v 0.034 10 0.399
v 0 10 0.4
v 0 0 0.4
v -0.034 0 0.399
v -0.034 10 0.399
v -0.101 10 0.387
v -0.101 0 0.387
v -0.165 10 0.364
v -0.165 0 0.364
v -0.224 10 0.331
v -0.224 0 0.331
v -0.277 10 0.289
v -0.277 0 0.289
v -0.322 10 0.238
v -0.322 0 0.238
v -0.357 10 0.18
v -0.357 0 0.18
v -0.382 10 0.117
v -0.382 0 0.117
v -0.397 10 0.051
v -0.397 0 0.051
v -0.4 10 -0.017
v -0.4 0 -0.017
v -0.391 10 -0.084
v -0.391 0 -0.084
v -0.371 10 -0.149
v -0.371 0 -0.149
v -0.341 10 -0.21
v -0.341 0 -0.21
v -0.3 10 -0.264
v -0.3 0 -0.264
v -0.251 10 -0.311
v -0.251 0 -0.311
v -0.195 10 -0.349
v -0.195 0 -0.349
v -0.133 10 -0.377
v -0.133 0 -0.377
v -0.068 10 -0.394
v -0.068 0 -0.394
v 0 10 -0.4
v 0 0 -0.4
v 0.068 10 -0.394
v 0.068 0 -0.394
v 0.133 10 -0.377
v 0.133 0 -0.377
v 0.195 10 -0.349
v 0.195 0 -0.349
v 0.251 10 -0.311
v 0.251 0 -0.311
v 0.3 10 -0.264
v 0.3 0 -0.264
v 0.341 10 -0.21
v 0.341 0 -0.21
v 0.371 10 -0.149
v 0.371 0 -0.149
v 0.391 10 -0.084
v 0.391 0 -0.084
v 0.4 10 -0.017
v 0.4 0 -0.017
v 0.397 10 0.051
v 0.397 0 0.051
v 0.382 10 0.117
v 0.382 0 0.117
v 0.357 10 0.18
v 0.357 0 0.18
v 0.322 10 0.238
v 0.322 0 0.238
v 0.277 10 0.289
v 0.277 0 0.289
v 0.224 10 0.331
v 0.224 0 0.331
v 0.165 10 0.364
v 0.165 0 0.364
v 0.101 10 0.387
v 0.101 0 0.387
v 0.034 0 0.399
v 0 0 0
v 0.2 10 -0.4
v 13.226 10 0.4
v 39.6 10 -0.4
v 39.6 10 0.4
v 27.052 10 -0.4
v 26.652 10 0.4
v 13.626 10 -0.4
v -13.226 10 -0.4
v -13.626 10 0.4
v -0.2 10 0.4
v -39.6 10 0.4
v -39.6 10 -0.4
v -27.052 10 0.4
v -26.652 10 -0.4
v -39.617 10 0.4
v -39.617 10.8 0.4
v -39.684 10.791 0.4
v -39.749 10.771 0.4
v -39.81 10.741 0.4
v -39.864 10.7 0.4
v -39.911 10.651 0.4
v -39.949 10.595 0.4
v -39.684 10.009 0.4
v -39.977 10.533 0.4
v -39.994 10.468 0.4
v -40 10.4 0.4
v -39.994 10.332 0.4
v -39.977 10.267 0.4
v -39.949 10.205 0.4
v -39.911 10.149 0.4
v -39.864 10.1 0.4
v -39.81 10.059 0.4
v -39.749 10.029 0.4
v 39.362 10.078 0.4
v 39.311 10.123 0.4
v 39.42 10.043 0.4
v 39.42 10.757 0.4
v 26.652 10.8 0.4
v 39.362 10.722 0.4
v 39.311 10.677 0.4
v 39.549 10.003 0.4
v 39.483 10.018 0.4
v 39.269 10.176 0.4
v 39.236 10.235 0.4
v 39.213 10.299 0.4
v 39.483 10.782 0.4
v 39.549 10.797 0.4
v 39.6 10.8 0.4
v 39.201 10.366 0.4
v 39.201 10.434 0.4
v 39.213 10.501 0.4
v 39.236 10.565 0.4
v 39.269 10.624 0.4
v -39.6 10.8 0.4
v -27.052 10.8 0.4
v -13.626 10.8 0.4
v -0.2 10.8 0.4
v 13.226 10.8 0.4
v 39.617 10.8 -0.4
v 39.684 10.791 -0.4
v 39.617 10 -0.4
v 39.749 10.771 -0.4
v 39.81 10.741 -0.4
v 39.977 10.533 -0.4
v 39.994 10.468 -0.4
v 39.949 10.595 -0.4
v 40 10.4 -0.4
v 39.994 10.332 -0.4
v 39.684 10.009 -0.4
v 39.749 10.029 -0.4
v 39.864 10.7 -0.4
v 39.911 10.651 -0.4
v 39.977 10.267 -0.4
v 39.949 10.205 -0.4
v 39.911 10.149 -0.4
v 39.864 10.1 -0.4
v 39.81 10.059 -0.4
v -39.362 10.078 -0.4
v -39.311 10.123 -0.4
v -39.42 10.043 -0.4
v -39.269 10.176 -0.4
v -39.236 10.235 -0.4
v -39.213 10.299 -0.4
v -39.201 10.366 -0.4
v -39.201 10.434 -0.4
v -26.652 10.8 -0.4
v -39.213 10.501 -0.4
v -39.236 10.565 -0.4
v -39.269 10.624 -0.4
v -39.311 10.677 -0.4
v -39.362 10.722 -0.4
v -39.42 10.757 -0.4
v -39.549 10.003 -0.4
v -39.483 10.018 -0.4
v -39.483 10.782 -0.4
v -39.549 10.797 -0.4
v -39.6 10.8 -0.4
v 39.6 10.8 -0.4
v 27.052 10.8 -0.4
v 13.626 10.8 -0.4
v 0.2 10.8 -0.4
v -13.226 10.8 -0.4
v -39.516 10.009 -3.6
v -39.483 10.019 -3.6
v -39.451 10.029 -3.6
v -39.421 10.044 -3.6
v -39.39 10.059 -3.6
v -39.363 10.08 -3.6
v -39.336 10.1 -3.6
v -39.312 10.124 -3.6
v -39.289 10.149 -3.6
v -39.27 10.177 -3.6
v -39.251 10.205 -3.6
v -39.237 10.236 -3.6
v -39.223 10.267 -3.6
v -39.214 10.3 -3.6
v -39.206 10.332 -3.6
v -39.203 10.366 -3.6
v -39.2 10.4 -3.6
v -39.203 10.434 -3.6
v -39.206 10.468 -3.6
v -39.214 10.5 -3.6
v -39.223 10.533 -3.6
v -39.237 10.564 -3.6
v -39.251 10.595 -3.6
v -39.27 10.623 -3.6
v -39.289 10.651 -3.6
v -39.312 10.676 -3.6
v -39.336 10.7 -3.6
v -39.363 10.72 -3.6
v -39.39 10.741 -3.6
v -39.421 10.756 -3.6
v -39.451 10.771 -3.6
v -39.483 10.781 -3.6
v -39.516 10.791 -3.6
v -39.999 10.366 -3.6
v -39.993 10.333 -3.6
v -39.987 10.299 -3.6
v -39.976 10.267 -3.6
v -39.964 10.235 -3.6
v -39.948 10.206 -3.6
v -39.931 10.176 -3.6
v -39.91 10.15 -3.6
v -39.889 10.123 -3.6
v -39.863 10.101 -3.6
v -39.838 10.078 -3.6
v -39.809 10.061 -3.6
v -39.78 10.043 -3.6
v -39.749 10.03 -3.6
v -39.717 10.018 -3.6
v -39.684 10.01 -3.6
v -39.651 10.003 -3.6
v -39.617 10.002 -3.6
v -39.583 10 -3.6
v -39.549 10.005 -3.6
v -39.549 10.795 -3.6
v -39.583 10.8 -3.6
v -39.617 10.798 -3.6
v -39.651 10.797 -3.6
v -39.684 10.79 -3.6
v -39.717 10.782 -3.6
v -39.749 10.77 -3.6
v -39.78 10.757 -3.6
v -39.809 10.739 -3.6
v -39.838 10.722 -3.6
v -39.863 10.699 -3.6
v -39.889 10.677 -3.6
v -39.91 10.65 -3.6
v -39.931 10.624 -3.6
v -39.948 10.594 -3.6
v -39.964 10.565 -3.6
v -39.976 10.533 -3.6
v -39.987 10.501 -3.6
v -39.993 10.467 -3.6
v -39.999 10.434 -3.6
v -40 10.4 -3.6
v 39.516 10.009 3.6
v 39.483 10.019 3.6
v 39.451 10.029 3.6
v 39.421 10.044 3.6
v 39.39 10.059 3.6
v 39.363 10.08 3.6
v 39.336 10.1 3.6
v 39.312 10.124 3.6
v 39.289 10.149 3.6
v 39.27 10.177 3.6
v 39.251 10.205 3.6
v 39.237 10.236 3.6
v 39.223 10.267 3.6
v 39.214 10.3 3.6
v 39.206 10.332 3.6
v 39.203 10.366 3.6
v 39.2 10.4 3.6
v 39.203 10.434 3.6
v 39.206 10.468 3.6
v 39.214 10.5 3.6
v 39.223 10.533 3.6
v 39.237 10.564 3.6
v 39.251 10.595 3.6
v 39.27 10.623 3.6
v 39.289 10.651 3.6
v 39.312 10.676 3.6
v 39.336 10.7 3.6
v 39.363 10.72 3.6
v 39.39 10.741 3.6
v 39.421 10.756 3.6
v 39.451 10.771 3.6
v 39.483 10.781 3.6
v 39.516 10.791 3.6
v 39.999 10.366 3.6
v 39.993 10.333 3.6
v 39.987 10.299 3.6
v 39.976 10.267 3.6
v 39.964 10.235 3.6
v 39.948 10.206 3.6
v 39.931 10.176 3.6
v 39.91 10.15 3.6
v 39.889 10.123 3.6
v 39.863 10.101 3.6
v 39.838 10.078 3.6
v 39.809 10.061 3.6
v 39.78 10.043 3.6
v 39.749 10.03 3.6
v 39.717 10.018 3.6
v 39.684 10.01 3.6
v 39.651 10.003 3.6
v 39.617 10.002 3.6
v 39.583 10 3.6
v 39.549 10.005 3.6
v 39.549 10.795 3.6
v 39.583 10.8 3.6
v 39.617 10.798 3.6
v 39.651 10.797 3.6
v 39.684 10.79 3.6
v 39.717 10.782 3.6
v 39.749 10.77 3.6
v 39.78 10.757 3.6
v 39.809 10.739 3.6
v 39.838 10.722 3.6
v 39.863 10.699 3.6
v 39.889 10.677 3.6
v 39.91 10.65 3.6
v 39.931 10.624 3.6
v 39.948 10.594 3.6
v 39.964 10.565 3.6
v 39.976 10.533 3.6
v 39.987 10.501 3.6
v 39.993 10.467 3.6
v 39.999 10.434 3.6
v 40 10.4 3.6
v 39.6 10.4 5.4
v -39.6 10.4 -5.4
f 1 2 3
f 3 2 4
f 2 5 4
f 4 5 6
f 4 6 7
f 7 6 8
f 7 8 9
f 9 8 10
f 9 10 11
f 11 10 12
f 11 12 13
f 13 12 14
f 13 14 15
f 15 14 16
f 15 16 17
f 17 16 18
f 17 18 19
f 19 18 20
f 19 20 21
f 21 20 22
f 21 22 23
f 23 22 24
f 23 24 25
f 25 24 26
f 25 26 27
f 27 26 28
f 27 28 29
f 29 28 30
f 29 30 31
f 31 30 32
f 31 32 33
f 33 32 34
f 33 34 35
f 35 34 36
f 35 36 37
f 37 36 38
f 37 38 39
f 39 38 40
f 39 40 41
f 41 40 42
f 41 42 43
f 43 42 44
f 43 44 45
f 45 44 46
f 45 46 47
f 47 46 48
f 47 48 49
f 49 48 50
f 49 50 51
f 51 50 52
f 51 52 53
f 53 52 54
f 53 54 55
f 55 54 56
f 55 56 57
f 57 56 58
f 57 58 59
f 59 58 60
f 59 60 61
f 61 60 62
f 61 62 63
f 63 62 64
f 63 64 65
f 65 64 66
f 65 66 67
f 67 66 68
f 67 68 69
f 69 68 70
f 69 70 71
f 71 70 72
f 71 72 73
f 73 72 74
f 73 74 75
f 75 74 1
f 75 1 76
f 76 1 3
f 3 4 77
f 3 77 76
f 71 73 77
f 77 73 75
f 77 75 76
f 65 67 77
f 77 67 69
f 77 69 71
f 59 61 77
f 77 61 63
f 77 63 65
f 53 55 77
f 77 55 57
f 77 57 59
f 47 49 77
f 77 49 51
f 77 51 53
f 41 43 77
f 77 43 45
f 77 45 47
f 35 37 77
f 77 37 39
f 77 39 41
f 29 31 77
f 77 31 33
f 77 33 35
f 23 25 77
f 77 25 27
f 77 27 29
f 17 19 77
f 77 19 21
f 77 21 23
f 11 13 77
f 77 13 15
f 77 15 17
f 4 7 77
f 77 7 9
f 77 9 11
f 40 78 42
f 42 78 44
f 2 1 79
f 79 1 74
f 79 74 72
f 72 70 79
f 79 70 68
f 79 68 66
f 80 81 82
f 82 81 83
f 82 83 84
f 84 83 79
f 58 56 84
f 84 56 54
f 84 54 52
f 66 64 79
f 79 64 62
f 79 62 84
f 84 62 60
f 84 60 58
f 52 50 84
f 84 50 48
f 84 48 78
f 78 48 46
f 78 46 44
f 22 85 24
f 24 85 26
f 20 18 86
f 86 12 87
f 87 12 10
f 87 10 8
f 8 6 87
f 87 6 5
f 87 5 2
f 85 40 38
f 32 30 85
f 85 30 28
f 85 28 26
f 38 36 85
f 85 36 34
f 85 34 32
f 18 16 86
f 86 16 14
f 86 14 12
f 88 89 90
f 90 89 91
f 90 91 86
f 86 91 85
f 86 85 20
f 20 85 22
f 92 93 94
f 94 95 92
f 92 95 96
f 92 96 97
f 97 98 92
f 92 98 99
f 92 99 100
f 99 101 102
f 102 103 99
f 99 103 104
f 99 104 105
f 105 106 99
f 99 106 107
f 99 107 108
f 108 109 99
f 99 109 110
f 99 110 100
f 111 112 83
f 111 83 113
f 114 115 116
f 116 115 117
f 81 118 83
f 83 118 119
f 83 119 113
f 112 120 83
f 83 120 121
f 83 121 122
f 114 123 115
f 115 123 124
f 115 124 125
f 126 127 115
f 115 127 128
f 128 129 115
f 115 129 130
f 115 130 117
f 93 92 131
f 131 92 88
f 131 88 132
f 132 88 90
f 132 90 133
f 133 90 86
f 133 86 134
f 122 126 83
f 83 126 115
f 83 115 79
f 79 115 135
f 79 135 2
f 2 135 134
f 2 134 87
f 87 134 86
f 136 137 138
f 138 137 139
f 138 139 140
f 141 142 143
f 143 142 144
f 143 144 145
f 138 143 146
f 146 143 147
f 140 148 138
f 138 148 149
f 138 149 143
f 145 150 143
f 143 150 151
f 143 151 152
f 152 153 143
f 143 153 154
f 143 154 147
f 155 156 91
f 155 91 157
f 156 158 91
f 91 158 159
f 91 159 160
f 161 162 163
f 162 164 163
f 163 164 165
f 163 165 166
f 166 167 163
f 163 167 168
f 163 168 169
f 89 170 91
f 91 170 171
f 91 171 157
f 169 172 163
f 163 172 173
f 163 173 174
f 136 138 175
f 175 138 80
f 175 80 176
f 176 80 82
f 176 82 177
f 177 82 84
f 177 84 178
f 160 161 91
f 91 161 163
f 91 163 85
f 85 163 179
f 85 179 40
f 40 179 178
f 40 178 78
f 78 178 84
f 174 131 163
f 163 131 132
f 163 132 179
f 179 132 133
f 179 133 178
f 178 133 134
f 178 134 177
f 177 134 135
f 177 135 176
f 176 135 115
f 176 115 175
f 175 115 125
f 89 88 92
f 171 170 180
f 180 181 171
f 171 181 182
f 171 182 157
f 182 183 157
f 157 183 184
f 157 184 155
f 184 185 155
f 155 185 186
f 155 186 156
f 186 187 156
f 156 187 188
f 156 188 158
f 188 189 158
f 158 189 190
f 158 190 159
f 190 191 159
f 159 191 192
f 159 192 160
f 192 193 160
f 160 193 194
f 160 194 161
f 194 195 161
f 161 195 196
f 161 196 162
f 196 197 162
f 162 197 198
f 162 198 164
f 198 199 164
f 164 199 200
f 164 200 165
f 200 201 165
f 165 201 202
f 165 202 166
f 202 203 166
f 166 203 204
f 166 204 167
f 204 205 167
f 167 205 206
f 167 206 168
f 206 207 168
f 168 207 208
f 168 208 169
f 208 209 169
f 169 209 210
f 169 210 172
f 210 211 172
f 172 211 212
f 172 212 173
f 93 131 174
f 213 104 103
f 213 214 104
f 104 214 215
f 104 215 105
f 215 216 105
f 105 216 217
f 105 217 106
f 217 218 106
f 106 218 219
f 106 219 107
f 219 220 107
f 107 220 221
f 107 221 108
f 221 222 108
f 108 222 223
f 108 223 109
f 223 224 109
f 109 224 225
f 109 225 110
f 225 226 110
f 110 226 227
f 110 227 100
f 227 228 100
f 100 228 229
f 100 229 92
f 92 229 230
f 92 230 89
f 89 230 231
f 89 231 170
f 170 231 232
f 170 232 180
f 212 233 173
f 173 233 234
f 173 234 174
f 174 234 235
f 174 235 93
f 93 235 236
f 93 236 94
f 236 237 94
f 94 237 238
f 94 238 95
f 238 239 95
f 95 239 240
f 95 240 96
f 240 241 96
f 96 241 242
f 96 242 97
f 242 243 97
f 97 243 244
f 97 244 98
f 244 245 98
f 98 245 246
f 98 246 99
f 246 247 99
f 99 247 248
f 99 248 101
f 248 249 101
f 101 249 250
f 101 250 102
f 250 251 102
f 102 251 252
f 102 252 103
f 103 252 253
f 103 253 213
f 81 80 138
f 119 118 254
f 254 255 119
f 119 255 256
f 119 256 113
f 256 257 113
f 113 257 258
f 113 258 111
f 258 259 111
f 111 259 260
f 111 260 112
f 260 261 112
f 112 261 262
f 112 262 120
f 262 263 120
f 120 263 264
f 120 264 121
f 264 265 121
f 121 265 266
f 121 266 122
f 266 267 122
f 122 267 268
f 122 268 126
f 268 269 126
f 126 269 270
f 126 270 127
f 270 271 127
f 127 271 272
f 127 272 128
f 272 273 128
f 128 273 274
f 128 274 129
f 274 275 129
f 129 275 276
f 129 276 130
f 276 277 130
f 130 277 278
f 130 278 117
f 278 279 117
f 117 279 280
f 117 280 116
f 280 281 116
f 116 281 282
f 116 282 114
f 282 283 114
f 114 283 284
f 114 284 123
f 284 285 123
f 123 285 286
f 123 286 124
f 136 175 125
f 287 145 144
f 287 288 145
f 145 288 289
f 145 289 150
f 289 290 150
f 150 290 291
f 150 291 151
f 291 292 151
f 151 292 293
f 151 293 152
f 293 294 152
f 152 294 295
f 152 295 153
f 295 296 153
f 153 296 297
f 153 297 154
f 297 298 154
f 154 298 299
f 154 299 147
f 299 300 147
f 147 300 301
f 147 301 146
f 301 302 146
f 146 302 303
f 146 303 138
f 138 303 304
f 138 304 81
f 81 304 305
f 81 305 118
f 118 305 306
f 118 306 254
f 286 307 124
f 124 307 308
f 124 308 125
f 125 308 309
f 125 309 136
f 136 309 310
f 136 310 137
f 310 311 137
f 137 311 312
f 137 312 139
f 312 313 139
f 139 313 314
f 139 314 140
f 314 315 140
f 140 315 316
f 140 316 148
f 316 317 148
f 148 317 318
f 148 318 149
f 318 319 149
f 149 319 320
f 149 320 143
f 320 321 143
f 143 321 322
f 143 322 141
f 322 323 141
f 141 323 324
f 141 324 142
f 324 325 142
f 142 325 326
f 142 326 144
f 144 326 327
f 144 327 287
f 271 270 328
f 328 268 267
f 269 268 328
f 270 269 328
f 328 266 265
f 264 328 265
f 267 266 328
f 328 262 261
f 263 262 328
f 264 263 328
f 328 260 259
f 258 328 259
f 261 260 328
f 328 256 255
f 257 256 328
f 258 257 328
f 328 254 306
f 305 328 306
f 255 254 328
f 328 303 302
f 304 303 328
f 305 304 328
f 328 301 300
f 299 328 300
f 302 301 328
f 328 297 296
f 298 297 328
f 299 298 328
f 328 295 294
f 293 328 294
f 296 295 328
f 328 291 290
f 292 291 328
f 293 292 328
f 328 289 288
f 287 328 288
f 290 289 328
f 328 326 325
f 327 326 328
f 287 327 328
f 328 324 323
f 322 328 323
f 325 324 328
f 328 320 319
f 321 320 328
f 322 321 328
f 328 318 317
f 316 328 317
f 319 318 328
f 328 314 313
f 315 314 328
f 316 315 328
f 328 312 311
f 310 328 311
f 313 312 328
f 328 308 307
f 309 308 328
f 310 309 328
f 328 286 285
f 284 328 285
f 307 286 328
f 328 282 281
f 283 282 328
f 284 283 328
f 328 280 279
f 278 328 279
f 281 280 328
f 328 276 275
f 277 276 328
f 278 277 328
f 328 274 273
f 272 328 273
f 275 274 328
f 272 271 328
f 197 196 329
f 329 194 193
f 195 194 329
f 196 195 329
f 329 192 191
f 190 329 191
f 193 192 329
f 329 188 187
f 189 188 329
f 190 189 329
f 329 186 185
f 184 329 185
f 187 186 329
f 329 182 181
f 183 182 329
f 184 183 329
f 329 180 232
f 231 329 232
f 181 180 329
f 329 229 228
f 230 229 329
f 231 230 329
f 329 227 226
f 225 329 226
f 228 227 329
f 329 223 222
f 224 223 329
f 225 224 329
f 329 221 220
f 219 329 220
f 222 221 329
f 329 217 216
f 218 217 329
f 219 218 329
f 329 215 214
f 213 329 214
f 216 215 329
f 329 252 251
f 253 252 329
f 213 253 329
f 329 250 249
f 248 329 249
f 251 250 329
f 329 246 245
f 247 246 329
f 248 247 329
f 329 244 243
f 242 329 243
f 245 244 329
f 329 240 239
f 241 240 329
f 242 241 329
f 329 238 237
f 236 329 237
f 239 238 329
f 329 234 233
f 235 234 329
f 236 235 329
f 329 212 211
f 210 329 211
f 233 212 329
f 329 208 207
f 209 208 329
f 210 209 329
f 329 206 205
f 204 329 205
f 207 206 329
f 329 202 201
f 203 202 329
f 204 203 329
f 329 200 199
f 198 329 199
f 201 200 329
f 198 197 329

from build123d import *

# Parameters (mm, degrees)
SKETCH_1_R      = 0.4
EXTRUDE_1_DEPTH = 10
SKETCH_2_W      = 80
SKETCH_2_H      = 0.8
EXTRUDE_2_DEPTH = 0.8
FILLET_1_R      = 0.4
SKETCH_3_R      = 0.4
EXTRUDE_3_DEPTH = 3.2
SKETCH_4_R      = 0.4
EXTRUDE_4_DEPTH = 3.2


with BuildPart() as part:
    # 草图1 → 凸台-拉伸1 (new body)
    with BuildSketch(Plane(origin=(0, 0, 0), x_dir=(1, 0, 0), z_dir=(0, 1, 0))):
        with Locations(Location((0, 0, 0), (0, 0, 270))):
            Circle(SKETCH_1_R)
    extrude(amount=EXTRUDE_1_DEPTH)

    # 草图2 → 凸台-拉伸2 (add)
    with BuildSketch(Plane(origin=(0, 10, 0), x_dir=(1, 0, 0), z_dir=(0, 1, 0))):
        Rectangle(SKETCH_2_W, SKETCH_2_H)
    extrude(amount=EXTRUDE_2_DEPTH)

    # 圆角1
    fillet_1_edges = [part.edges().sort_by_distance(p)[0] for p in [
        (40, 10, 0),
        (40, 10.8, 0),
        (-40, 10, 0),
        (-40, 10.8, 0),
    ]]
    fillet(fillet_1_edges, radius=FILLET_1_R - 0.0001)  # a hair under: the kernel refuses the full size

    # 草图3 → 凸台-拉伸3 (add)
    with BuildSketch(Plane.XY.offset(0.4)):
        with Locations((39.6, 10.4)):
            Circle(SKETCH_3_R)
    extrude(amount=EXTRUDE_3_DEPTH)

    # 草图4 → 凸台-拉伸4 (add)
    with BuildSketch(Plane(origin=(0, 0, -0.4), x_dir=(-1, 0, 0), z_dir=(0, 0, -1))):
        with Locations((39.6, 10.4)):
            Circle(SKETCH_4_R)
    extrude(amount=EXTRUDE_4_DEPTH)

    # 草图5 → 旋转1 (revolve)
    with BuildSketch(Plane(origin=(0, 10.4, 0), x_dir=(1, 0, 0), z_dir=(0, 1, 0))):
        Polygon((39.6, -3.6), (39.6, -5.4), (40, -3.6), align=None)
    revolve(axis=Axis((39.6, 10.4, 3.6), (0, 0, 1)))

    # 草图6 → 旋转2 (revolve)
    with BuildSketch(Plane(origin=(0, 10.4, 0), x_dir=(1, 0, 0), z_dir=(0, 1, 0))):
        Polygon((-39.6, 3.6), (-39.6, 5.4), (-40, 3.6), align=None)
    revolve(axis=Axis((-39.6, 10.4, -3.6), (0, 0, -1)))


solid = part.part
